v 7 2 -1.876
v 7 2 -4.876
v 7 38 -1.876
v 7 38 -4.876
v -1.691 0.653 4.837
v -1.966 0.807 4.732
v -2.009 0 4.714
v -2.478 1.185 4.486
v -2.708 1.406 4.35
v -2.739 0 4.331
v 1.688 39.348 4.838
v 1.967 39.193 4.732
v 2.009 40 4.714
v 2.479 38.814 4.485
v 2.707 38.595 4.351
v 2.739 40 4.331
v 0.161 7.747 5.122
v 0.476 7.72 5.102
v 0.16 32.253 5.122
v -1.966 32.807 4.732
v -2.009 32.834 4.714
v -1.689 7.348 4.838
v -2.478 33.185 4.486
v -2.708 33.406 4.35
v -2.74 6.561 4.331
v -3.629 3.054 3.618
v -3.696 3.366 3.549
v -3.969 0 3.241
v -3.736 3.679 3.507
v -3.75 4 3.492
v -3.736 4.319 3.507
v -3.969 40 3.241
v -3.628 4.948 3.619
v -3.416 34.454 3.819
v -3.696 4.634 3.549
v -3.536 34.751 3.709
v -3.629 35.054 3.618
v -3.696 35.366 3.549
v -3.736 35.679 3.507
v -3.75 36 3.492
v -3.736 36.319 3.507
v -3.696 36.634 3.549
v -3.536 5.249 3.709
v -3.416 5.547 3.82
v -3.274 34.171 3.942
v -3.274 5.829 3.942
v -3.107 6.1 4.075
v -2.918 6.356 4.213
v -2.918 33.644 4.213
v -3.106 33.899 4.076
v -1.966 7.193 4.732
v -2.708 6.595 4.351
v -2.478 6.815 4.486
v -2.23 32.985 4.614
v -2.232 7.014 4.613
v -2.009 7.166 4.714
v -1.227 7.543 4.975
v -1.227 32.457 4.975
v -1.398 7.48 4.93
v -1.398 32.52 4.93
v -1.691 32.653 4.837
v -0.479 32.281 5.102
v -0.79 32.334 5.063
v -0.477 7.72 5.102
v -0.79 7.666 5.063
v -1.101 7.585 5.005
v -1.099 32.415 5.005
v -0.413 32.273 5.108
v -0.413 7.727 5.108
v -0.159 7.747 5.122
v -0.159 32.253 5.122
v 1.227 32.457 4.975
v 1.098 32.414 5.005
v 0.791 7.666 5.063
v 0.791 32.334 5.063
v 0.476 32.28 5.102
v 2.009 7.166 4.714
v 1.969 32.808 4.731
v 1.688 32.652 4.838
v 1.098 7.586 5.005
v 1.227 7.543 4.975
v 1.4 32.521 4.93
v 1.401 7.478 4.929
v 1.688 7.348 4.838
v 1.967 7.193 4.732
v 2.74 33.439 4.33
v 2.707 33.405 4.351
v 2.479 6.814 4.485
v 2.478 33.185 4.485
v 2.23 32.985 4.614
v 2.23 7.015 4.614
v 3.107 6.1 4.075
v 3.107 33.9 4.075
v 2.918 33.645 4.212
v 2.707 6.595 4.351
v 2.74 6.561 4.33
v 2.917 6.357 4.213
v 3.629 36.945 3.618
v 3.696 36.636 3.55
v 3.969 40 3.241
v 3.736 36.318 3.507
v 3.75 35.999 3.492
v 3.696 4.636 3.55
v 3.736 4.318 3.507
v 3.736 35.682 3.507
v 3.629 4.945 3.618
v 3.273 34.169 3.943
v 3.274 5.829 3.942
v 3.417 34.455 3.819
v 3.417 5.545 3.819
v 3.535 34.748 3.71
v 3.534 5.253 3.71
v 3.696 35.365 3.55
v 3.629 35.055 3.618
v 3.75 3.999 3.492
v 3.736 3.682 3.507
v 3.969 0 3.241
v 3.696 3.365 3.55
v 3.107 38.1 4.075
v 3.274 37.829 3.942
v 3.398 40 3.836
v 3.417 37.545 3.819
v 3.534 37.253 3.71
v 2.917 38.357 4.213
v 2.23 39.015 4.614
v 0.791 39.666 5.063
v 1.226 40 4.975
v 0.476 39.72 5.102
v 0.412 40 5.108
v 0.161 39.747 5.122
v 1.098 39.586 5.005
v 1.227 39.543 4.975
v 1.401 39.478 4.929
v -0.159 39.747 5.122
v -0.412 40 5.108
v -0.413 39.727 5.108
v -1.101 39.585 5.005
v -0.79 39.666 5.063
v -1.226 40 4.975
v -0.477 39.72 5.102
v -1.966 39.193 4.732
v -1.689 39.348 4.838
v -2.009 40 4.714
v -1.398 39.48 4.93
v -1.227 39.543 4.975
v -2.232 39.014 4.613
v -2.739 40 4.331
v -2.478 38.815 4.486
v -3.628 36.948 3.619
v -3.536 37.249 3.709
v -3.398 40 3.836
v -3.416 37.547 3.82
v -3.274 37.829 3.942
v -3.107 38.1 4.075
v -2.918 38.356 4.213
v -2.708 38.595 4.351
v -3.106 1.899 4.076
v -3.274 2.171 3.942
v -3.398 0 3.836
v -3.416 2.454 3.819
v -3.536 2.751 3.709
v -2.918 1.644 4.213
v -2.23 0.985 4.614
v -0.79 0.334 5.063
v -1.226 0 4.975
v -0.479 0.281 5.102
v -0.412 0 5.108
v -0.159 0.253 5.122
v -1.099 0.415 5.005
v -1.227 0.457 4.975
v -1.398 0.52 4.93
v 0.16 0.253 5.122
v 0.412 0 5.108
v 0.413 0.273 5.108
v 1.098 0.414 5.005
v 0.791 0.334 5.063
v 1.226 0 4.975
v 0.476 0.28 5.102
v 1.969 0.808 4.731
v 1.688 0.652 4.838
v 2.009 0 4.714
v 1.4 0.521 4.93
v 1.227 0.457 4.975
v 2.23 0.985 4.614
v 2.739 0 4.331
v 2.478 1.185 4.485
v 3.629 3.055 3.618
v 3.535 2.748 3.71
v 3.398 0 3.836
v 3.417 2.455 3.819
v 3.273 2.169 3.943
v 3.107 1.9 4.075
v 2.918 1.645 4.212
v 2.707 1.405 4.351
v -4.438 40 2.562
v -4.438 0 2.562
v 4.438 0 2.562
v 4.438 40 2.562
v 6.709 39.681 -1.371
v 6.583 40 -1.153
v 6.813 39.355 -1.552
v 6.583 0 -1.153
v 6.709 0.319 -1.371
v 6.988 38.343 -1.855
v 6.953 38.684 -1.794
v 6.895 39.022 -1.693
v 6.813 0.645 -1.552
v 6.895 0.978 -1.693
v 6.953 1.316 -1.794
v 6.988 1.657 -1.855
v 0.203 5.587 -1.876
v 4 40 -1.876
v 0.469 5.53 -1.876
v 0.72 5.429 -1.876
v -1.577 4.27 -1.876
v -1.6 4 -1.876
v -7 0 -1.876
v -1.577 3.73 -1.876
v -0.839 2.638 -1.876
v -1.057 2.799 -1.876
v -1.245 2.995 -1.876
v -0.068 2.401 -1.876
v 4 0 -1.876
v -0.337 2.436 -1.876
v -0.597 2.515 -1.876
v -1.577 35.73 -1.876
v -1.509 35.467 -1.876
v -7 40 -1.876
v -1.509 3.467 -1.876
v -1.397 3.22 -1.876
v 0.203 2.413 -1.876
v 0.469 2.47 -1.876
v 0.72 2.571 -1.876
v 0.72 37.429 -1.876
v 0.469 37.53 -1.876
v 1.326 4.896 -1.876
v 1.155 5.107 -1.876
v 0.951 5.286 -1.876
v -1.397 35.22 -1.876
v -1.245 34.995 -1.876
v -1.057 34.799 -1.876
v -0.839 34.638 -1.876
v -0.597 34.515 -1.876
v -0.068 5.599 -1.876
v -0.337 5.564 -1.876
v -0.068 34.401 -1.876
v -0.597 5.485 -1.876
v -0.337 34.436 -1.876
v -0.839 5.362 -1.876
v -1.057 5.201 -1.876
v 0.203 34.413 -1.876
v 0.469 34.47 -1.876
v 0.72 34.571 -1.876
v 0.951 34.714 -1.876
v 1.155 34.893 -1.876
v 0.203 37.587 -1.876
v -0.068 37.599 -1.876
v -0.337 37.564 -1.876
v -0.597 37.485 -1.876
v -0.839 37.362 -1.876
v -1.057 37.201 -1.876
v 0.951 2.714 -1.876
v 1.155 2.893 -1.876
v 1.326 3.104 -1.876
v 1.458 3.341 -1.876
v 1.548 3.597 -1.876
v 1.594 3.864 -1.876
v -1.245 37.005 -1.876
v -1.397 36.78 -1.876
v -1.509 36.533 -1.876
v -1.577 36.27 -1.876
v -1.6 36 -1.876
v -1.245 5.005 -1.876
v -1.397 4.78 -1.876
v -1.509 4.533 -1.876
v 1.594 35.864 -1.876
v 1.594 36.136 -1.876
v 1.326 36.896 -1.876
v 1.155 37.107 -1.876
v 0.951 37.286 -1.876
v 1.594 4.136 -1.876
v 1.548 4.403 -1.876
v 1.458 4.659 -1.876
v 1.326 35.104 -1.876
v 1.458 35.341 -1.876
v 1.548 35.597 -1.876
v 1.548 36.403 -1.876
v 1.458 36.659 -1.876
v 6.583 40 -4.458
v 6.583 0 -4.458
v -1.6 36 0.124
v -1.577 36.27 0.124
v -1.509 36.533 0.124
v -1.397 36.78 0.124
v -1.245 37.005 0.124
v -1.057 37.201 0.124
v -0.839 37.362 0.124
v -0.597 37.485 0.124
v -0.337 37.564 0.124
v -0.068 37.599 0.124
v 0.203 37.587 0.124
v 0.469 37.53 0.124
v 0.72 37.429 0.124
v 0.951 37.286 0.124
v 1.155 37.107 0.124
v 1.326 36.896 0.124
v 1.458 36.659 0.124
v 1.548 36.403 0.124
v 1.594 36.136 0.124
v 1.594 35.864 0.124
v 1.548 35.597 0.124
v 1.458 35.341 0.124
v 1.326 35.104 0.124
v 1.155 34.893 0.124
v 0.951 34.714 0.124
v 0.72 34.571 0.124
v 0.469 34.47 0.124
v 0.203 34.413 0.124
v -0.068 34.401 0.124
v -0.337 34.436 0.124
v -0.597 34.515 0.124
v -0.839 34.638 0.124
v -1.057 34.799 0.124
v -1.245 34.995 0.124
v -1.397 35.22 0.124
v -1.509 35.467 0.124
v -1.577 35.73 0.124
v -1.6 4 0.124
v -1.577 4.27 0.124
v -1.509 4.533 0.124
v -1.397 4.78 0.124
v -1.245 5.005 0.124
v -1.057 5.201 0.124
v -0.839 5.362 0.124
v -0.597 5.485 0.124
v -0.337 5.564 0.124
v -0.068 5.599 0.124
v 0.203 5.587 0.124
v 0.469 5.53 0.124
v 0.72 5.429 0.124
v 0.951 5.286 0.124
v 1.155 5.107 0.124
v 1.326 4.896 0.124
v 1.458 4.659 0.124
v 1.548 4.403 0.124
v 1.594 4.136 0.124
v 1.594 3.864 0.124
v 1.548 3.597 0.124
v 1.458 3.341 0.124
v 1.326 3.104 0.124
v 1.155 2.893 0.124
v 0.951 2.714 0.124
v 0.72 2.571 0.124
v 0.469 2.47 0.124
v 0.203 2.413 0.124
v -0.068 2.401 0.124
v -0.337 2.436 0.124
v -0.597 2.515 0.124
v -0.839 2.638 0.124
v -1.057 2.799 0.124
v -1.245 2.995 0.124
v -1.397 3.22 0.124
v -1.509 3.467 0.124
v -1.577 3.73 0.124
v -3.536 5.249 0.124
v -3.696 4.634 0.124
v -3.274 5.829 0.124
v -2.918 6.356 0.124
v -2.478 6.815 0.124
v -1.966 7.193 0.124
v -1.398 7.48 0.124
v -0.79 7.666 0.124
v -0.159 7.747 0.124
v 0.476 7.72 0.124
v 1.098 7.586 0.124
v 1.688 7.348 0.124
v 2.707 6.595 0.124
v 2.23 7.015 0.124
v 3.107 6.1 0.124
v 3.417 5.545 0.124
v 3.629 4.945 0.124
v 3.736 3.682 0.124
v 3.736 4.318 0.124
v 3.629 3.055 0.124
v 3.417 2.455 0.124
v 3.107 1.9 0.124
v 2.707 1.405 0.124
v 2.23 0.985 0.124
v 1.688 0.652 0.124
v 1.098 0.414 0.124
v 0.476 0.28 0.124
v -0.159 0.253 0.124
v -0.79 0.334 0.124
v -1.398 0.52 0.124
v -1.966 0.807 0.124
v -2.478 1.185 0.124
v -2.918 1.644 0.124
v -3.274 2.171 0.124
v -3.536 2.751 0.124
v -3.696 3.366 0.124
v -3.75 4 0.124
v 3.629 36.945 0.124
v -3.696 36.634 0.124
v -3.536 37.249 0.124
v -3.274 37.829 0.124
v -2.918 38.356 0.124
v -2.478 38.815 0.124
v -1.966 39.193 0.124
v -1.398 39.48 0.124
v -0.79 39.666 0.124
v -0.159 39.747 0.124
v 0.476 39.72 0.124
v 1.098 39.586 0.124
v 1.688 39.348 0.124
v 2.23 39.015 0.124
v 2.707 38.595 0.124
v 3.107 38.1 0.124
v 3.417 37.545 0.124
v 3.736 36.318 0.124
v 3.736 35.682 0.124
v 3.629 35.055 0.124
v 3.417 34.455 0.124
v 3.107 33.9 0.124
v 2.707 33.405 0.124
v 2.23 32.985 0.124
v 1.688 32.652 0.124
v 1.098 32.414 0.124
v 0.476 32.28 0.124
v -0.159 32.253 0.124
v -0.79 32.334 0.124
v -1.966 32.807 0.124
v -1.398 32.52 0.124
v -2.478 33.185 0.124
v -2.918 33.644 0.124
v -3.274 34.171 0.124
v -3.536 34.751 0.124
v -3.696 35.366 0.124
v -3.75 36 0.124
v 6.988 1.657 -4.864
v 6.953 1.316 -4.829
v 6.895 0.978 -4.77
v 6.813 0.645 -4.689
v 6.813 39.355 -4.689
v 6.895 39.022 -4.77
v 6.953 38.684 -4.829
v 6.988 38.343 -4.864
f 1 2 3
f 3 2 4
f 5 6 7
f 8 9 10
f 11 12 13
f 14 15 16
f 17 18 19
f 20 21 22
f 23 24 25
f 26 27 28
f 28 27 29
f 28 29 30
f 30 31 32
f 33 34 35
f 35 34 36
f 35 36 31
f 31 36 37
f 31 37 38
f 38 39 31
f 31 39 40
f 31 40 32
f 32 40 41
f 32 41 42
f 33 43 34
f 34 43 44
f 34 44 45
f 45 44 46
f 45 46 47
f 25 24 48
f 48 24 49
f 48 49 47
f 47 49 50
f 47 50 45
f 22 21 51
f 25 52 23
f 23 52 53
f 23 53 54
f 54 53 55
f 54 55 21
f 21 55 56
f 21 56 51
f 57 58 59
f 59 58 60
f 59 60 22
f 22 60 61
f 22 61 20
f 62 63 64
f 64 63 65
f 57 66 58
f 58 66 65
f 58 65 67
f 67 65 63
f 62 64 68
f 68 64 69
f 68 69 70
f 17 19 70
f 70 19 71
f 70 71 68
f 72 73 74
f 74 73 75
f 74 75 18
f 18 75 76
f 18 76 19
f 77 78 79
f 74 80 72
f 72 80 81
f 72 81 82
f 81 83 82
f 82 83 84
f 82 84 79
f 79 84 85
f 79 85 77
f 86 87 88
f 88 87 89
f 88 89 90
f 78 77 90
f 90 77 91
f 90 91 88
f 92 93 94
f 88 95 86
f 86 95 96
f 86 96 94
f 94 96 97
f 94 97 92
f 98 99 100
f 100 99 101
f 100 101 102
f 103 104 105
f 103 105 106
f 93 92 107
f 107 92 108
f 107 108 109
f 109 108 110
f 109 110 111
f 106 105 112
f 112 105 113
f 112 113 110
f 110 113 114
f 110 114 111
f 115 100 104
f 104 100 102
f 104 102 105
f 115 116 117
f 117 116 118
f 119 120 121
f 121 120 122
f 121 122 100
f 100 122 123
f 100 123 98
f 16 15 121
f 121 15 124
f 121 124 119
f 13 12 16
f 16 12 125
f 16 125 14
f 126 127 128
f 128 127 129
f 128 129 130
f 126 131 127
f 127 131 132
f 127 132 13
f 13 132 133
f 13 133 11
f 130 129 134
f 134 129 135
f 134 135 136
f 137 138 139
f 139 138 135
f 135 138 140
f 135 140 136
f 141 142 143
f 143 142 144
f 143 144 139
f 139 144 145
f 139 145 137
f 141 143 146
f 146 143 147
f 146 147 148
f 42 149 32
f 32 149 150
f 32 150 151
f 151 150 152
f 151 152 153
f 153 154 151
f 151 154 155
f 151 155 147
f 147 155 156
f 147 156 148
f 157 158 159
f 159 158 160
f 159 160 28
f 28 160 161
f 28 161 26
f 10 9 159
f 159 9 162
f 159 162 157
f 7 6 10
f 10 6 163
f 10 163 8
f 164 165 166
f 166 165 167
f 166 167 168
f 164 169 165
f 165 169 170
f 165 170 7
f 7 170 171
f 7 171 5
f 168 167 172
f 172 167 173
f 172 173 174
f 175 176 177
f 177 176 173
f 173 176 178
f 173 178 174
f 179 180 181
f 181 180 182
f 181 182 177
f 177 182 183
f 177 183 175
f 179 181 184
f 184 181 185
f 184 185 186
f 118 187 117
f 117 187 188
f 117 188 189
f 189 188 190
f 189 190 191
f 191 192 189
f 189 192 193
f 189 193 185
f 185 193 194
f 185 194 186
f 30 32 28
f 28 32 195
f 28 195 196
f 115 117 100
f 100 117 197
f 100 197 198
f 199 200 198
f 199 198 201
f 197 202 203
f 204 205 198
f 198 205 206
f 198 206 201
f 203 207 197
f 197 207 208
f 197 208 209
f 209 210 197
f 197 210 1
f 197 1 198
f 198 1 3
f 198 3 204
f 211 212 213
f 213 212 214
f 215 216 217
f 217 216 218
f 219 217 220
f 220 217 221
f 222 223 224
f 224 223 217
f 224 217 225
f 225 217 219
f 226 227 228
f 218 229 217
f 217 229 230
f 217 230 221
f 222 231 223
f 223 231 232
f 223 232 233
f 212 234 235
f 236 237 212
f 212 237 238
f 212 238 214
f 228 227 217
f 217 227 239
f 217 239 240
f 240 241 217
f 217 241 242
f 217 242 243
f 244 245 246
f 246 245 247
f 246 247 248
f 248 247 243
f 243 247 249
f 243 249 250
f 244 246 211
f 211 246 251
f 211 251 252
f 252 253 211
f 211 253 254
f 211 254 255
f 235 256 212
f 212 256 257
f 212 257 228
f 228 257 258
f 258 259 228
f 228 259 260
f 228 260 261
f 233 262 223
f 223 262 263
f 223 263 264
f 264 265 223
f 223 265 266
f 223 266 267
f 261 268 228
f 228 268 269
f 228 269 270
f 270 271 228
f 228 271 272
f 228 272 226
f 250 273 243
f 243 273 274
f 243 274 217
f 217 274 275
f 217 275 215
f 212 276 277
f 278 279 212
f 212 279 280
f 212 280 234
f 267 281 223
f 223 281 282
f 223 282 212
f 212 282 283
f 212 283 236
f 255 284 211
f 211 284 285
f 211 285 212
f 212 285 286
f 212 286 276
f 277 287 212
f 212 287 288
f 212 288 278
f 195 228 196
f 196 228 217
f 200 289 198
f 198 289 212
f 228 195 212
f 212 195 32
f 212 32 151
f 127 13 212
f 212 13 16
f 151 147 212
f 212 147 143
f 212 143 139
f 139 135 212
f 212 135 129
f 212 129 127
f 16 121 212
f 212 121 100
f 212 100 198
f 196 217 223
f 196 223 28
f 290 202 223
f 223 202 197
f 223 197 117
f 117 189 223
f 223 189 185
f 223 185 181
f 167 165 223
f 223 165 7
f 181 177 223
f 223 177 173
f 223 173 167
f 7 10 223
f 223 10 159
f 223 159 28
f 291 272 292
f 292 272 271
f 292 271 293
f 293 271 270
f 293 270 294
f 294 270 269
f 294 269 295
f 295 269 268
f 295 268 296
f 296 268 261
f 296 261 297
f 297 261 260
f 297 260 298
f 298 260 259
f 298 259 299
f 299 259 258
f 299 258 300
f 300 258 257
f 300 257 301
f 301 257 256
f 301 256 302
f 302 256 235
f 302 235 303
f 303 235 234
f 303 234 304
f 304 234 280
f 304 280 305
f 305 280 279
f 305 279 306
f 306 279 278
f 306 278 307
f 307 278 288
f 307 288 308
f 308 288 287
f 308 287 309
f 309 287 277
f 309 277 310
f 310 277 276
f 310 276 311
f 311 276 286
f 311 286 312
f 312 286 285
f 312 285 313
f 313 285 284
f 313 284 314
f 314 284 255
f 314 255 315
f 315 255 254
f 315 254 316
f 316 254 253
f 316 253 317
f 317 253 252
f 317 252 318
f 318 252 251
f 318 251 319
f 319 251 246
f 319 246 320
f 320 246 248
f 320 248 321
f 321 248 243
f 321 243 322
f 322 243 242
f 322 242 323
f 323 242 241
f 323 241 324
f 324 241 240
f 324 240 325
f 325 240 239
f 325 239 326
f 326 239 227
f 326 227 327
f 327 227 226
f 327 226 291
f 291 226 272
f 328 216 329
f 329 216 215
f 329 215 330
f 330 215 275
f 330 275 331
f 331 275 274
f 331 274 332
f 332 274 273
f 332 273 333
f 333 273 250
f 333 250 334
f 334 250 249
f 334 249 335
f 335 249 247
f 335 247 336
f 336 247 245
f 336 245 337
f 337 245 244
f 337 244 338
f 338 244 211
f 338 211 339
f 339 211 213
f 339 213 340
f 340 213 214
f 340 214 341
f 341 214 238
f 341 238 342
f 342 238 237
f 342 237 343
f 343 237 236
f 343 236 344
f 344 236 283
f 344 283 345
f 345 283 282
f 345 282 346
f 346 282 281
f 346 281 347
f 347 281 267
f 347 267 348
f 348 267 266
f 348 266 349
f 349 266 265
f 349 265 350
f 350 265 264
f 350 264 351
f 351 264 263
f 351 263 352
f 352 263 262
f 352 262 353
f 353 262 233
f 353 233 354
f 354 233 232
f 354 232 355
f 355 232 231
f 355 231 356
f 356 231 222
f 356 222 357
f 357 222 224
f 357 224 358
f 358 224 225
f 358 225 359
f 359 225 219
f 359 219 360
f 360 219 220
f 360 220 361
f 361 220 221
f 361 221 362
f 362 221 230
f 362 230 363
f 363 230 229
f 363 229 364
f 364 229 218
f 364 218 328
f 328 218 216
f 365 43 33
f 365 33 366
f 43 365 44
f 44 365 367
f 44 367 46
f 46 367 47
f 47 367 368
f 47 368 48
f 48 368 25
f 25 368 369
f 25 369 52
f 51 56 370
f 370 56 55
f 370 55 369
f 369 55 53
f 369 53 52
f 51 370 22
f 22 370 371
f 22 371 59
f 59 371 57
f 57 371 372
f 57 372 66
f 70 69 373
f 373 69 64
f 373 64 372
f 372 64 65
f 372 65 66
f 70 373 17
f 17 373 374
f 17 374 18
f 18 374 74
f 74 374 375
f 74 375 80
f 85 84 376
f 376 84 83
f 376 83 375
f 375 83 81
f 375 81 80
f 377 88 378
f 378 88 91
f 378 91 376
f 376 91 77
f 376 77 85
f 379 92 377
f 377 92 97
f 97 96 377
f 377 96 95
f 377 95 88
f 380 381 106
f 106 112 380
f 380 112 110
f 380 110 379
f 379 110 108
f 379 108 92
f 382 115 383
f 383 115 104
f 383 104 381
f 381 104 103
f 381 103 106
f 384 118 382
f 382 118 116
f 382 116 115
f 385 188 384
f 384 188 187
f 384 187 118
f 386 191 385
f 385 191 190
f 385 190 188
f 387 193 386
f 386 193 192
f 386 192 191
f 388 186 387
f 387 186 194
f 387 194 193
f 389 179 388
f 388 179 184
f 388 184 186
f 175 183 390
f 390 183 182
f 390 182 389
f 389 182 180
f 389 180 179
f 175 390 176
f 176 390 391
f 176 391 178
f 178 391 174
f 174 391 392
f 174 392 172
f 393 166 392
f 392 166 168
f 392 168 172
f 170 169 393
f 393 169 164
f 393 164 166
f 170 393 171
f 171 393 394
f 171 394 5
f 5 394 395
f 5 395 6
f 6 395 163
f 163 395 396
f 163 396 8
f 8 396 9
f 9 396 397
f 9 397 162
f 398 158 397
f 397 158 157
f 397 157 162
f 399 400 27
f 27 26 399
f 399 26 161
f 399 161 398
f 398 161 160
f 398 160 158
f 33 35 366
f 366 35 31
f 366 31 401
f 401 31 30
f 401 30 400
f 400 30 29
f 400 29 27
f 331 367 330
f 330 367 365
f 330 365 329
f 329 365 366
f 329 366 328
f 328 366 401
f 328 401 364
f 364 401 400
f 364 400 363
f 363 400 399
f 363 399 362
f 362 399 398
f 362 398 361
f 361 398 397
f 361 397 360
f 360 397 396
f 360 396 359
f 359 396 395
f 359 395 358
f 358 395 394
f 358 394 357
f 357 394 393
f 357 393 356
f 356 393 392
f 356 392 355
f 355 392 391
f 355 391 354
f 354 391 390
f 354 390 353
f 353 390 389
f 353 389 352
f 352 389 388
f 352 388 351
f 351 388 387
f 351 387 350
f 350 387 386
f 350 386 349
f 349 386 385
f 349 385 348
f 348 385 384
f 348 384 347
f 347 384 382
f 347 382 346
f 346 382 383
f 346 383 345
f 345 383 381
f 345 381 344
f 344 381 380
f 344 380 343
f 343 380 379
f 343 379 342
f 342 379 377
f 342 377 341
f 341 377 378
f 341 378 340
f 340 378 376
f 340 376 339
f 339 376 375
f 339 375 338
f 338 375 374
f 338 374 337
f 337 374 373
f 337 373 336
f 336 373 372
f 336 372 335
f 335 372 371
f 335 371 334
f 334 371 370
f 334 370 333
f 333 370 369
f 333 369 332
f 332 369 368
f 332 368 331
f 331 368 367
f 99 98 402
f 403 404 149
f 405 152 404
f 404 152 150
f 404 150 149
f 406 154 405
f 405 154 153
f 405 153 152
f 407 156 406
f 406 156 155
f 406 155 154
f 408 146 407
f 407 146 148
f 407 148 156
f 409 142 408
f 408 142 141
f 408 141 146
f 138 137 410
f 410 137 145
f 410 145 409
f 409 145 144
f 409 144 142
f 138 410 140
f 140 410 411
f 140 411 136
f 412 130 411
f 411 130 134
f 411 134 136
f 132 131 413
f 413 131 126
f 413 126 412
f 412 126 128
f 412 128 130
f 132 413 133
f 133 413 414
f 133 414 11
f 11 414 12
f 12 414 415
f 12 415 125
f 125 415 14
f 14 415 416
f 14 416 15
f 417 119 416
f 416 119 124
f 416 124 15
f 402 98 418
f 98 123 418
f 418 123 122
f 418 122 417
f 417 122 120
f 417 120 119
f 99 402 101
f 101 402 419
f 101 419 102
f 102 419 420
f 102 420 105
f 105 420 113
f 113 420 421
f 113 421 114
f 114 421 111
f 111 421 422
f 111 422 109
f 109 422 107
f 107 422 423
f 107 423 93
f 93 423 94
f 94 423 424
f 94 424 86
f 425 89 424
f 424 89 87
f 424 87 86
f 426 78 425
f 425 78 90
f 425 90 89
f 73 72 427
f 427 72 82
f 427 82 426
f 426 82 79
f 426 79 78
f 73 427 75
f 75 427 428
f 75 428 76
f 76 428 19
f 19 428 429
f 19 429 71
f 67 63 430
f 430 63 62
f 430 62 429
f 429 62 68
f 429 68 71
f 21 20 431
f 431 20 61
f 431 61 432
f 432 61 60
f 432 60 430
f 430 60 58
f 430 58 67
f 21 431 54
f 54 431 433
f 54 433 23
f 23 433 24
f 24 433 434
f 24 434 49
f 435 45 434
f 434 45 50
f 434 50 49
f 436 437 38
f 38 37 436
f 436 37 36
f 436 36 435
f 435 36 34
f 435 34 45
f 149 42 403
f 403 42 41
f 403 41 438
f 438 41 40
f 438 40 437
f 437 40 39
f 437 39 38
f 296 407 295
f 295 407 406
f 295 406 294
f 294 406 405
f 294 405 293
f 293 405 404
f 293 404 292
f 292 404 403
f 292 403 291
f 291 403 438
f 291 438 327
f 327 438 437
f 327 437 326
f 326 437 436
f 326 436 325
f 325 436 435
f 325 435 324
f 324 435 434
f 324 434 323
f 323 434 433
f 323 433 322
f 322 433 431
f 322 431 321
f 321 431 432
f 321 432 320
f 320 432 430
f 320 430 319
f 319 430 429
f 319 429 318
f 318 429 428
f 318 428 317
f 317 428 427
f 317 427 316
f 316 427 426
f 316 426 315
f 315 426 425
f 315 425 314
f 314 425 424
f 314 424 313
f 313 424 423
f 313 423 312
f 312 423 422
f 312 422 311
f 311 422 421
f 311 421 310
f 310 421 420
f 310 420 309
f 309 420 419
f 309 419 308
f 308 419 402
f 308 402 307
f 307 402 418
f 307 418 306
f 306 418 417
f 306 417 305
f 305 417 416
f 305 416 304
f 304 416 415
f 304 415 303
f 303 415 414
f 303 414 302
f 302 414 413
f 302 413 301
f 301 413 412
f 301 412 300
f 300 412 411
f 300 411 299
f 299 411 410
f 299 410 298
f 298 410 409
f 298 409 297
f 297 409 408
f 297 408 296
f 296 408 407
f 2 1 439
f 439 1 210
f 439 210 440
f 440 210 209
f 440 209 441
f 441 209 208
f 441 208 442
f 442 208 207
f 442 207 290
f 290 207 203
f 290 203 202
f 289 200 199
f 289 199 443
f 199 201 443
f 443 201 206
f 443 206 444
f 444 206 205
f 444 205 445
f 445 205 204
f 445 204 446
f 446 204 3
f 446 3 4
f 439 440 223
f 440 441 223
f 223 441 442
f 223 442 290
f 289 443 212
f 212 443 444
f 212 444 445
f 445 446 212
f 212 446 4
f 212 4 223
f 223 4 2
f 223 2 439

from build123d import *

# Parameters (mm, degrees)
EXTRUDE_1_DEPTH          = 40
CUT_EXTRUDE_1_REACH      = 43.207
CUT_EXTRUDE_1_END_RADIUS = 5.124355653
SKETCH_3_R               = 1.6
CUT_EXTRUDE_2_REACH      = 45.207
CUT_EXTRUDE_2_END_RADIUS = 5.124355653
CUT_EXTRUDE_START        = -2
SKETCH_4_R               = 3.75
CUT_EXTRUDE_3_REACH      = 43.207
EXTRUDE_2_REACH          = 42.93
CUT_EXTRUDE_4_REACH      = 43.207


with BuildPart() as part:
    # 草图1 → 凸台-拉伸1 (new body)
    with BuildSketch(Plane(origin=(0, 0, 0), x_dir=(1, 0, 0), z_dir=(0, 1, 0))):
        with BuildLine():
            Line((-4.437822174, -2.562177826), (-7, 1.875644347))
            Line((-7, 1.875644347), (7, 1.875644347))
            Line((7, 1.875644347), (4.437822174, -2.562177826))
            ThreePointArc((4.437822174, -2.562177826), (0, -5.124355653), (-4.437822174, -2.562177826))
        make_face()
    extrude(amount=EXTRUDE_1_DEPTH)

    # 切除-拉伸1: up to this cylinder (the profile starts inside it)
    cut_extrude_1_end = Plane(origin=(0, 20, 0), z_dir=(0, -1, 0)) * Cylinder(CUT_EXTRUDE_1_END_RADIUS, 129.662711306, mode=Mode.PRIVATE)
    # 草图3 → 切除-拉伸1 (cut, up to the surface)
    with BuildSketch(Plane(origin=(0, 0, -1.875644347), x_dir=(-1, 0, 0), z_dir=(0, 0, -1)), mode=Mode.PRIVATE) as cut_extrude_1_sk1:
        with Locations((0, 4)):
            Circle(SKETCH_3_R)
    cut_extrude_1_tool1 = extrude(cut_extrude_1_sk1.sketch, amount=-CUT_EXTRUDE_1_REACH, mode=Mode.PRIVATE) & cut_extrude_1_end
    add(cut_extrude_1_tool1.solids().sort_by_distance((0, 4, -1.875644))[0], mode=Mode.SUBTRACT)
    # 草图3 → 切除-拉伸1 (cut, up to the surface)
    with BuildSketch(Plane(origin=(0, 0, -1.875644347), x_dir=(-1, 0, 0), z_dir=(0, 0, -1)), mode=Mode.PRIVATE) as cut_extrude_1_sk2:
        with Locations((0, 36)):
            Circle(SKETCH_3_R)
    cut_extrude_1_tool2 = extrude(cut_extrude_1_sk2.sketch, amount=-CUT_EXTRUDE_1_REACH, mode=Mode.PRIVATE) & cut_extrude_1_end
    add(cut_extrude_1_tool2.solids().sort_by_distance((0, 36, -1.875644))[0], mode=Mode.SUBTRACT)

    # 切除-拉伸2: up to this cylinder (the profile starts inside it)
    cut_extrude_2_end = Plane(origin=(0, 20, 0), z_dir=(0, -1, 0)) * Cylinder(CUT_EXTRUDE_2_END_RADIUS, 133.662711306, mode=Mode.PRIVATE)
    # 草图4 → 切除-拉伸2 (cut, up to the surface)
    with BuildSketch(Plane(origin=(0, 0, -1.875644347), x_dir=(-1, 0, 0), z_dir=(0, 0, -1)).offset(CUT_EXTRUDE_START), mode=Mode.PRIVATE) as cut_extrude_2_sk1:
        with Locations((0, 4)):
            Circle(SKETCH_4_R)
    cut_extrude_2_tool1 = extrude(cut_extrude_2_sk1.sketch, amount=-CUT_EXTRUDE_2_REACH, mode=Mode.PRIVATE) & cut_extrude_2_end
    add(cut_extrude_2_tool1.solids().sort_by_distance((0, 4, 0.124356))[0], mode=Mode.SUBTRACT)
    # 草图4 → 切除-拉伸2 (cut, up to the surface)
    with BuildSketch(Plane(origin=(0, 0, -1.875644347), x_dir=(-1, 0, 0), z_dir=(0, 0, -1)).offset(CUT_EXTRUDE_START), mode=Mode.PRIVATE) as cut_extrude_2_sk2:
        with Locations((0, 36)):
            Circle(SKETCH_4_R)
    cut_extrude_2_tool2 = extrude(cut_extrude_2_sk2.sketch, amount=-CUT_EXTRUDE_2_REACH, mode=Mode.PRIVATE) & cut_extrude_2_end
    add(cut_extrude_2_tool2.solids().sort_by_distance((0, 36, 0.124356))[0], mode=Mode.SUBTRACT)

    # 草图6 → 切除-拉伸3 (cut, up to next)
    with BuildSketch(Plane(origin=(0, 0, -1.875644347), x_dir=(-1, 0, 0), z_dir=(0, 0, -1)), mode=Mode.PRIVATE) as cut_extrude_3_sk1:
        with BuildLine():
            Line((-7, 2), (-7, 0))
            Line((-7, 0), (-6.582575695, 0))
            ThreePointArc((-6.582575695, 0), (-6.894531565, 0.978451782), (-7, 2))
        make_face()
    cut_extrude_3_tool1 = extrude(cut_extrude_3_sk1.sketch, amount=-CUT_EXTRUDE_3_REACH, mode=Mode.PRIVATE) & part.part
    # 草图6 → 切除-拉伸3 (cut, up to next)
    with BuildSketch(Plane(origin=(0, 0, -1.875644347), x_dir=(-1, 0, 0), z_dir=(0, 0, -1)), mode=Mode.PRIVATE) as cut_extrude_3_sk2:
        with BuildLine():
            Line((-7, 40), (-6.582575695, 40))
            ThreePointArc((-6.582575695, 40), (-6.894531565, 39.021548218), (-7, 38))
            Line((-7, 38), (-7, 40))
        make_face()
    cut_extrude_3_tool2 = extrude(cut_extrude_3_sk2.sketch, amount=-CUT_EXTRUDE_3_REACH, mode=Mode.PRIVATE) & part.part
    add(cut_extrude_3_tool1.solids().sort_by_distance((6.875723, 0.49573, -1.875644))[0], mode=Mode.SUBTRACT)
    add(cut_extrude_3_tool2.solids().sort_by_distance((6.875723, 39.50427, -1.875644))[0], mode=Mode.SUBTRACT)

    # 凸台-拉伸2: up to this face of the body (flat: up to its plane)
    extrude_2_end = Plane(part.part.faces().sort_by_distance((-0.015198687, 40, 1.011851656))[0])
    # 草图7 → 凸台-拉伸2 (add, up to the picked face)
    with BuildSketch(Plane(origin=(0, 0, 0), x_dir=(1, 0, 0), z_dir=(0, 1, 0)), mode=Mode.PRIVATE) as extrude_2_sk1:
        Polygon((7, 1.875644347), (7, 4.875644347), (4, 1.875644347), align=None)
    extrude_2_tool1 = split(extrude(extrude_2_sk1.sketch, amount=EXTRUDE_2_REACH, mode=Mode.PRIVATE), bisect_by=extrude_2_end, keep=Keep.BOTH, mode=Mode.PRIVATE)
    add(extrude_2_tool1.solids().sort_by(Axis((6, 0, -2.875644), (0, 1, 0)))[0])

    # 切除-拉伸4: up to this plane
    cut_extrude_4_end = Plane(origin=(7, 44.242640687, -4.875644347), z_dir=(0.7071067811865476, 0, 0.7071067811865476))
    # 草图8 → 切除-拉伸4 (cut, up to the surface)
    with BuildSketch(Plane.XY.offset(-1.875644347), mode=Mode.PRIVATE) as cut_extrude_4_sk1:
        with BuildLine():
            Line((7, 38), (7, 40))
            Line((7, 40), (6.582575695, 40))
            ThreePointArc((6.582575695, 40), (6.894531565, 39.021548218), (7, 38))
        make_face()
    cut_extrude_4_tool1 = split(extrude(cut_extrude_4_sk1.sketch, amount=-CUT_EXTRUDE_4_REACH, mode=Mode.PRIVATE), bisect_by=cut_extrude_4_end, keep=Keep.BOTH, mode=Mode.PRIVATE)
    add(cut_extrude_4_tool1.solids().sort_by_distance((6.875723, 39.50427, -1.875644))[0], mode=Mode.SUBTRACT)
    # 草图8 → 切除-拉伸4 (cut, up to the surface)
    with BuildSketch(Plane.XY.offset(-1.875644347), mode=Mode.PRIVATE) as cut_extrude_4_sk2:
        with BuildLine():
            Line((6.582575695, 0), (7, 0))
            Line((7, 0), (7, 2))
            ThreePointArc((7, 2), (6.894531565, 0.978451782), (6.582575695, 0))
        make_face()
    cut_extrude_4_tool2 = split(extrude(cut_extrude_4_sk2.sketch, amount=-CUT_EXTRUDE_4_REACH, mode=Mode.PRIVATE), bisect_by=cut_extrude_4_end, keep=Keep.BOTH, mode=Mode.PRIVATE)
    add(cut_extrude_4_tool2.solids().sort_by_distance((6.875723, 0.49573, -1.875644))[0], mode=Mode.SUBTRACT)


solid = part.part
